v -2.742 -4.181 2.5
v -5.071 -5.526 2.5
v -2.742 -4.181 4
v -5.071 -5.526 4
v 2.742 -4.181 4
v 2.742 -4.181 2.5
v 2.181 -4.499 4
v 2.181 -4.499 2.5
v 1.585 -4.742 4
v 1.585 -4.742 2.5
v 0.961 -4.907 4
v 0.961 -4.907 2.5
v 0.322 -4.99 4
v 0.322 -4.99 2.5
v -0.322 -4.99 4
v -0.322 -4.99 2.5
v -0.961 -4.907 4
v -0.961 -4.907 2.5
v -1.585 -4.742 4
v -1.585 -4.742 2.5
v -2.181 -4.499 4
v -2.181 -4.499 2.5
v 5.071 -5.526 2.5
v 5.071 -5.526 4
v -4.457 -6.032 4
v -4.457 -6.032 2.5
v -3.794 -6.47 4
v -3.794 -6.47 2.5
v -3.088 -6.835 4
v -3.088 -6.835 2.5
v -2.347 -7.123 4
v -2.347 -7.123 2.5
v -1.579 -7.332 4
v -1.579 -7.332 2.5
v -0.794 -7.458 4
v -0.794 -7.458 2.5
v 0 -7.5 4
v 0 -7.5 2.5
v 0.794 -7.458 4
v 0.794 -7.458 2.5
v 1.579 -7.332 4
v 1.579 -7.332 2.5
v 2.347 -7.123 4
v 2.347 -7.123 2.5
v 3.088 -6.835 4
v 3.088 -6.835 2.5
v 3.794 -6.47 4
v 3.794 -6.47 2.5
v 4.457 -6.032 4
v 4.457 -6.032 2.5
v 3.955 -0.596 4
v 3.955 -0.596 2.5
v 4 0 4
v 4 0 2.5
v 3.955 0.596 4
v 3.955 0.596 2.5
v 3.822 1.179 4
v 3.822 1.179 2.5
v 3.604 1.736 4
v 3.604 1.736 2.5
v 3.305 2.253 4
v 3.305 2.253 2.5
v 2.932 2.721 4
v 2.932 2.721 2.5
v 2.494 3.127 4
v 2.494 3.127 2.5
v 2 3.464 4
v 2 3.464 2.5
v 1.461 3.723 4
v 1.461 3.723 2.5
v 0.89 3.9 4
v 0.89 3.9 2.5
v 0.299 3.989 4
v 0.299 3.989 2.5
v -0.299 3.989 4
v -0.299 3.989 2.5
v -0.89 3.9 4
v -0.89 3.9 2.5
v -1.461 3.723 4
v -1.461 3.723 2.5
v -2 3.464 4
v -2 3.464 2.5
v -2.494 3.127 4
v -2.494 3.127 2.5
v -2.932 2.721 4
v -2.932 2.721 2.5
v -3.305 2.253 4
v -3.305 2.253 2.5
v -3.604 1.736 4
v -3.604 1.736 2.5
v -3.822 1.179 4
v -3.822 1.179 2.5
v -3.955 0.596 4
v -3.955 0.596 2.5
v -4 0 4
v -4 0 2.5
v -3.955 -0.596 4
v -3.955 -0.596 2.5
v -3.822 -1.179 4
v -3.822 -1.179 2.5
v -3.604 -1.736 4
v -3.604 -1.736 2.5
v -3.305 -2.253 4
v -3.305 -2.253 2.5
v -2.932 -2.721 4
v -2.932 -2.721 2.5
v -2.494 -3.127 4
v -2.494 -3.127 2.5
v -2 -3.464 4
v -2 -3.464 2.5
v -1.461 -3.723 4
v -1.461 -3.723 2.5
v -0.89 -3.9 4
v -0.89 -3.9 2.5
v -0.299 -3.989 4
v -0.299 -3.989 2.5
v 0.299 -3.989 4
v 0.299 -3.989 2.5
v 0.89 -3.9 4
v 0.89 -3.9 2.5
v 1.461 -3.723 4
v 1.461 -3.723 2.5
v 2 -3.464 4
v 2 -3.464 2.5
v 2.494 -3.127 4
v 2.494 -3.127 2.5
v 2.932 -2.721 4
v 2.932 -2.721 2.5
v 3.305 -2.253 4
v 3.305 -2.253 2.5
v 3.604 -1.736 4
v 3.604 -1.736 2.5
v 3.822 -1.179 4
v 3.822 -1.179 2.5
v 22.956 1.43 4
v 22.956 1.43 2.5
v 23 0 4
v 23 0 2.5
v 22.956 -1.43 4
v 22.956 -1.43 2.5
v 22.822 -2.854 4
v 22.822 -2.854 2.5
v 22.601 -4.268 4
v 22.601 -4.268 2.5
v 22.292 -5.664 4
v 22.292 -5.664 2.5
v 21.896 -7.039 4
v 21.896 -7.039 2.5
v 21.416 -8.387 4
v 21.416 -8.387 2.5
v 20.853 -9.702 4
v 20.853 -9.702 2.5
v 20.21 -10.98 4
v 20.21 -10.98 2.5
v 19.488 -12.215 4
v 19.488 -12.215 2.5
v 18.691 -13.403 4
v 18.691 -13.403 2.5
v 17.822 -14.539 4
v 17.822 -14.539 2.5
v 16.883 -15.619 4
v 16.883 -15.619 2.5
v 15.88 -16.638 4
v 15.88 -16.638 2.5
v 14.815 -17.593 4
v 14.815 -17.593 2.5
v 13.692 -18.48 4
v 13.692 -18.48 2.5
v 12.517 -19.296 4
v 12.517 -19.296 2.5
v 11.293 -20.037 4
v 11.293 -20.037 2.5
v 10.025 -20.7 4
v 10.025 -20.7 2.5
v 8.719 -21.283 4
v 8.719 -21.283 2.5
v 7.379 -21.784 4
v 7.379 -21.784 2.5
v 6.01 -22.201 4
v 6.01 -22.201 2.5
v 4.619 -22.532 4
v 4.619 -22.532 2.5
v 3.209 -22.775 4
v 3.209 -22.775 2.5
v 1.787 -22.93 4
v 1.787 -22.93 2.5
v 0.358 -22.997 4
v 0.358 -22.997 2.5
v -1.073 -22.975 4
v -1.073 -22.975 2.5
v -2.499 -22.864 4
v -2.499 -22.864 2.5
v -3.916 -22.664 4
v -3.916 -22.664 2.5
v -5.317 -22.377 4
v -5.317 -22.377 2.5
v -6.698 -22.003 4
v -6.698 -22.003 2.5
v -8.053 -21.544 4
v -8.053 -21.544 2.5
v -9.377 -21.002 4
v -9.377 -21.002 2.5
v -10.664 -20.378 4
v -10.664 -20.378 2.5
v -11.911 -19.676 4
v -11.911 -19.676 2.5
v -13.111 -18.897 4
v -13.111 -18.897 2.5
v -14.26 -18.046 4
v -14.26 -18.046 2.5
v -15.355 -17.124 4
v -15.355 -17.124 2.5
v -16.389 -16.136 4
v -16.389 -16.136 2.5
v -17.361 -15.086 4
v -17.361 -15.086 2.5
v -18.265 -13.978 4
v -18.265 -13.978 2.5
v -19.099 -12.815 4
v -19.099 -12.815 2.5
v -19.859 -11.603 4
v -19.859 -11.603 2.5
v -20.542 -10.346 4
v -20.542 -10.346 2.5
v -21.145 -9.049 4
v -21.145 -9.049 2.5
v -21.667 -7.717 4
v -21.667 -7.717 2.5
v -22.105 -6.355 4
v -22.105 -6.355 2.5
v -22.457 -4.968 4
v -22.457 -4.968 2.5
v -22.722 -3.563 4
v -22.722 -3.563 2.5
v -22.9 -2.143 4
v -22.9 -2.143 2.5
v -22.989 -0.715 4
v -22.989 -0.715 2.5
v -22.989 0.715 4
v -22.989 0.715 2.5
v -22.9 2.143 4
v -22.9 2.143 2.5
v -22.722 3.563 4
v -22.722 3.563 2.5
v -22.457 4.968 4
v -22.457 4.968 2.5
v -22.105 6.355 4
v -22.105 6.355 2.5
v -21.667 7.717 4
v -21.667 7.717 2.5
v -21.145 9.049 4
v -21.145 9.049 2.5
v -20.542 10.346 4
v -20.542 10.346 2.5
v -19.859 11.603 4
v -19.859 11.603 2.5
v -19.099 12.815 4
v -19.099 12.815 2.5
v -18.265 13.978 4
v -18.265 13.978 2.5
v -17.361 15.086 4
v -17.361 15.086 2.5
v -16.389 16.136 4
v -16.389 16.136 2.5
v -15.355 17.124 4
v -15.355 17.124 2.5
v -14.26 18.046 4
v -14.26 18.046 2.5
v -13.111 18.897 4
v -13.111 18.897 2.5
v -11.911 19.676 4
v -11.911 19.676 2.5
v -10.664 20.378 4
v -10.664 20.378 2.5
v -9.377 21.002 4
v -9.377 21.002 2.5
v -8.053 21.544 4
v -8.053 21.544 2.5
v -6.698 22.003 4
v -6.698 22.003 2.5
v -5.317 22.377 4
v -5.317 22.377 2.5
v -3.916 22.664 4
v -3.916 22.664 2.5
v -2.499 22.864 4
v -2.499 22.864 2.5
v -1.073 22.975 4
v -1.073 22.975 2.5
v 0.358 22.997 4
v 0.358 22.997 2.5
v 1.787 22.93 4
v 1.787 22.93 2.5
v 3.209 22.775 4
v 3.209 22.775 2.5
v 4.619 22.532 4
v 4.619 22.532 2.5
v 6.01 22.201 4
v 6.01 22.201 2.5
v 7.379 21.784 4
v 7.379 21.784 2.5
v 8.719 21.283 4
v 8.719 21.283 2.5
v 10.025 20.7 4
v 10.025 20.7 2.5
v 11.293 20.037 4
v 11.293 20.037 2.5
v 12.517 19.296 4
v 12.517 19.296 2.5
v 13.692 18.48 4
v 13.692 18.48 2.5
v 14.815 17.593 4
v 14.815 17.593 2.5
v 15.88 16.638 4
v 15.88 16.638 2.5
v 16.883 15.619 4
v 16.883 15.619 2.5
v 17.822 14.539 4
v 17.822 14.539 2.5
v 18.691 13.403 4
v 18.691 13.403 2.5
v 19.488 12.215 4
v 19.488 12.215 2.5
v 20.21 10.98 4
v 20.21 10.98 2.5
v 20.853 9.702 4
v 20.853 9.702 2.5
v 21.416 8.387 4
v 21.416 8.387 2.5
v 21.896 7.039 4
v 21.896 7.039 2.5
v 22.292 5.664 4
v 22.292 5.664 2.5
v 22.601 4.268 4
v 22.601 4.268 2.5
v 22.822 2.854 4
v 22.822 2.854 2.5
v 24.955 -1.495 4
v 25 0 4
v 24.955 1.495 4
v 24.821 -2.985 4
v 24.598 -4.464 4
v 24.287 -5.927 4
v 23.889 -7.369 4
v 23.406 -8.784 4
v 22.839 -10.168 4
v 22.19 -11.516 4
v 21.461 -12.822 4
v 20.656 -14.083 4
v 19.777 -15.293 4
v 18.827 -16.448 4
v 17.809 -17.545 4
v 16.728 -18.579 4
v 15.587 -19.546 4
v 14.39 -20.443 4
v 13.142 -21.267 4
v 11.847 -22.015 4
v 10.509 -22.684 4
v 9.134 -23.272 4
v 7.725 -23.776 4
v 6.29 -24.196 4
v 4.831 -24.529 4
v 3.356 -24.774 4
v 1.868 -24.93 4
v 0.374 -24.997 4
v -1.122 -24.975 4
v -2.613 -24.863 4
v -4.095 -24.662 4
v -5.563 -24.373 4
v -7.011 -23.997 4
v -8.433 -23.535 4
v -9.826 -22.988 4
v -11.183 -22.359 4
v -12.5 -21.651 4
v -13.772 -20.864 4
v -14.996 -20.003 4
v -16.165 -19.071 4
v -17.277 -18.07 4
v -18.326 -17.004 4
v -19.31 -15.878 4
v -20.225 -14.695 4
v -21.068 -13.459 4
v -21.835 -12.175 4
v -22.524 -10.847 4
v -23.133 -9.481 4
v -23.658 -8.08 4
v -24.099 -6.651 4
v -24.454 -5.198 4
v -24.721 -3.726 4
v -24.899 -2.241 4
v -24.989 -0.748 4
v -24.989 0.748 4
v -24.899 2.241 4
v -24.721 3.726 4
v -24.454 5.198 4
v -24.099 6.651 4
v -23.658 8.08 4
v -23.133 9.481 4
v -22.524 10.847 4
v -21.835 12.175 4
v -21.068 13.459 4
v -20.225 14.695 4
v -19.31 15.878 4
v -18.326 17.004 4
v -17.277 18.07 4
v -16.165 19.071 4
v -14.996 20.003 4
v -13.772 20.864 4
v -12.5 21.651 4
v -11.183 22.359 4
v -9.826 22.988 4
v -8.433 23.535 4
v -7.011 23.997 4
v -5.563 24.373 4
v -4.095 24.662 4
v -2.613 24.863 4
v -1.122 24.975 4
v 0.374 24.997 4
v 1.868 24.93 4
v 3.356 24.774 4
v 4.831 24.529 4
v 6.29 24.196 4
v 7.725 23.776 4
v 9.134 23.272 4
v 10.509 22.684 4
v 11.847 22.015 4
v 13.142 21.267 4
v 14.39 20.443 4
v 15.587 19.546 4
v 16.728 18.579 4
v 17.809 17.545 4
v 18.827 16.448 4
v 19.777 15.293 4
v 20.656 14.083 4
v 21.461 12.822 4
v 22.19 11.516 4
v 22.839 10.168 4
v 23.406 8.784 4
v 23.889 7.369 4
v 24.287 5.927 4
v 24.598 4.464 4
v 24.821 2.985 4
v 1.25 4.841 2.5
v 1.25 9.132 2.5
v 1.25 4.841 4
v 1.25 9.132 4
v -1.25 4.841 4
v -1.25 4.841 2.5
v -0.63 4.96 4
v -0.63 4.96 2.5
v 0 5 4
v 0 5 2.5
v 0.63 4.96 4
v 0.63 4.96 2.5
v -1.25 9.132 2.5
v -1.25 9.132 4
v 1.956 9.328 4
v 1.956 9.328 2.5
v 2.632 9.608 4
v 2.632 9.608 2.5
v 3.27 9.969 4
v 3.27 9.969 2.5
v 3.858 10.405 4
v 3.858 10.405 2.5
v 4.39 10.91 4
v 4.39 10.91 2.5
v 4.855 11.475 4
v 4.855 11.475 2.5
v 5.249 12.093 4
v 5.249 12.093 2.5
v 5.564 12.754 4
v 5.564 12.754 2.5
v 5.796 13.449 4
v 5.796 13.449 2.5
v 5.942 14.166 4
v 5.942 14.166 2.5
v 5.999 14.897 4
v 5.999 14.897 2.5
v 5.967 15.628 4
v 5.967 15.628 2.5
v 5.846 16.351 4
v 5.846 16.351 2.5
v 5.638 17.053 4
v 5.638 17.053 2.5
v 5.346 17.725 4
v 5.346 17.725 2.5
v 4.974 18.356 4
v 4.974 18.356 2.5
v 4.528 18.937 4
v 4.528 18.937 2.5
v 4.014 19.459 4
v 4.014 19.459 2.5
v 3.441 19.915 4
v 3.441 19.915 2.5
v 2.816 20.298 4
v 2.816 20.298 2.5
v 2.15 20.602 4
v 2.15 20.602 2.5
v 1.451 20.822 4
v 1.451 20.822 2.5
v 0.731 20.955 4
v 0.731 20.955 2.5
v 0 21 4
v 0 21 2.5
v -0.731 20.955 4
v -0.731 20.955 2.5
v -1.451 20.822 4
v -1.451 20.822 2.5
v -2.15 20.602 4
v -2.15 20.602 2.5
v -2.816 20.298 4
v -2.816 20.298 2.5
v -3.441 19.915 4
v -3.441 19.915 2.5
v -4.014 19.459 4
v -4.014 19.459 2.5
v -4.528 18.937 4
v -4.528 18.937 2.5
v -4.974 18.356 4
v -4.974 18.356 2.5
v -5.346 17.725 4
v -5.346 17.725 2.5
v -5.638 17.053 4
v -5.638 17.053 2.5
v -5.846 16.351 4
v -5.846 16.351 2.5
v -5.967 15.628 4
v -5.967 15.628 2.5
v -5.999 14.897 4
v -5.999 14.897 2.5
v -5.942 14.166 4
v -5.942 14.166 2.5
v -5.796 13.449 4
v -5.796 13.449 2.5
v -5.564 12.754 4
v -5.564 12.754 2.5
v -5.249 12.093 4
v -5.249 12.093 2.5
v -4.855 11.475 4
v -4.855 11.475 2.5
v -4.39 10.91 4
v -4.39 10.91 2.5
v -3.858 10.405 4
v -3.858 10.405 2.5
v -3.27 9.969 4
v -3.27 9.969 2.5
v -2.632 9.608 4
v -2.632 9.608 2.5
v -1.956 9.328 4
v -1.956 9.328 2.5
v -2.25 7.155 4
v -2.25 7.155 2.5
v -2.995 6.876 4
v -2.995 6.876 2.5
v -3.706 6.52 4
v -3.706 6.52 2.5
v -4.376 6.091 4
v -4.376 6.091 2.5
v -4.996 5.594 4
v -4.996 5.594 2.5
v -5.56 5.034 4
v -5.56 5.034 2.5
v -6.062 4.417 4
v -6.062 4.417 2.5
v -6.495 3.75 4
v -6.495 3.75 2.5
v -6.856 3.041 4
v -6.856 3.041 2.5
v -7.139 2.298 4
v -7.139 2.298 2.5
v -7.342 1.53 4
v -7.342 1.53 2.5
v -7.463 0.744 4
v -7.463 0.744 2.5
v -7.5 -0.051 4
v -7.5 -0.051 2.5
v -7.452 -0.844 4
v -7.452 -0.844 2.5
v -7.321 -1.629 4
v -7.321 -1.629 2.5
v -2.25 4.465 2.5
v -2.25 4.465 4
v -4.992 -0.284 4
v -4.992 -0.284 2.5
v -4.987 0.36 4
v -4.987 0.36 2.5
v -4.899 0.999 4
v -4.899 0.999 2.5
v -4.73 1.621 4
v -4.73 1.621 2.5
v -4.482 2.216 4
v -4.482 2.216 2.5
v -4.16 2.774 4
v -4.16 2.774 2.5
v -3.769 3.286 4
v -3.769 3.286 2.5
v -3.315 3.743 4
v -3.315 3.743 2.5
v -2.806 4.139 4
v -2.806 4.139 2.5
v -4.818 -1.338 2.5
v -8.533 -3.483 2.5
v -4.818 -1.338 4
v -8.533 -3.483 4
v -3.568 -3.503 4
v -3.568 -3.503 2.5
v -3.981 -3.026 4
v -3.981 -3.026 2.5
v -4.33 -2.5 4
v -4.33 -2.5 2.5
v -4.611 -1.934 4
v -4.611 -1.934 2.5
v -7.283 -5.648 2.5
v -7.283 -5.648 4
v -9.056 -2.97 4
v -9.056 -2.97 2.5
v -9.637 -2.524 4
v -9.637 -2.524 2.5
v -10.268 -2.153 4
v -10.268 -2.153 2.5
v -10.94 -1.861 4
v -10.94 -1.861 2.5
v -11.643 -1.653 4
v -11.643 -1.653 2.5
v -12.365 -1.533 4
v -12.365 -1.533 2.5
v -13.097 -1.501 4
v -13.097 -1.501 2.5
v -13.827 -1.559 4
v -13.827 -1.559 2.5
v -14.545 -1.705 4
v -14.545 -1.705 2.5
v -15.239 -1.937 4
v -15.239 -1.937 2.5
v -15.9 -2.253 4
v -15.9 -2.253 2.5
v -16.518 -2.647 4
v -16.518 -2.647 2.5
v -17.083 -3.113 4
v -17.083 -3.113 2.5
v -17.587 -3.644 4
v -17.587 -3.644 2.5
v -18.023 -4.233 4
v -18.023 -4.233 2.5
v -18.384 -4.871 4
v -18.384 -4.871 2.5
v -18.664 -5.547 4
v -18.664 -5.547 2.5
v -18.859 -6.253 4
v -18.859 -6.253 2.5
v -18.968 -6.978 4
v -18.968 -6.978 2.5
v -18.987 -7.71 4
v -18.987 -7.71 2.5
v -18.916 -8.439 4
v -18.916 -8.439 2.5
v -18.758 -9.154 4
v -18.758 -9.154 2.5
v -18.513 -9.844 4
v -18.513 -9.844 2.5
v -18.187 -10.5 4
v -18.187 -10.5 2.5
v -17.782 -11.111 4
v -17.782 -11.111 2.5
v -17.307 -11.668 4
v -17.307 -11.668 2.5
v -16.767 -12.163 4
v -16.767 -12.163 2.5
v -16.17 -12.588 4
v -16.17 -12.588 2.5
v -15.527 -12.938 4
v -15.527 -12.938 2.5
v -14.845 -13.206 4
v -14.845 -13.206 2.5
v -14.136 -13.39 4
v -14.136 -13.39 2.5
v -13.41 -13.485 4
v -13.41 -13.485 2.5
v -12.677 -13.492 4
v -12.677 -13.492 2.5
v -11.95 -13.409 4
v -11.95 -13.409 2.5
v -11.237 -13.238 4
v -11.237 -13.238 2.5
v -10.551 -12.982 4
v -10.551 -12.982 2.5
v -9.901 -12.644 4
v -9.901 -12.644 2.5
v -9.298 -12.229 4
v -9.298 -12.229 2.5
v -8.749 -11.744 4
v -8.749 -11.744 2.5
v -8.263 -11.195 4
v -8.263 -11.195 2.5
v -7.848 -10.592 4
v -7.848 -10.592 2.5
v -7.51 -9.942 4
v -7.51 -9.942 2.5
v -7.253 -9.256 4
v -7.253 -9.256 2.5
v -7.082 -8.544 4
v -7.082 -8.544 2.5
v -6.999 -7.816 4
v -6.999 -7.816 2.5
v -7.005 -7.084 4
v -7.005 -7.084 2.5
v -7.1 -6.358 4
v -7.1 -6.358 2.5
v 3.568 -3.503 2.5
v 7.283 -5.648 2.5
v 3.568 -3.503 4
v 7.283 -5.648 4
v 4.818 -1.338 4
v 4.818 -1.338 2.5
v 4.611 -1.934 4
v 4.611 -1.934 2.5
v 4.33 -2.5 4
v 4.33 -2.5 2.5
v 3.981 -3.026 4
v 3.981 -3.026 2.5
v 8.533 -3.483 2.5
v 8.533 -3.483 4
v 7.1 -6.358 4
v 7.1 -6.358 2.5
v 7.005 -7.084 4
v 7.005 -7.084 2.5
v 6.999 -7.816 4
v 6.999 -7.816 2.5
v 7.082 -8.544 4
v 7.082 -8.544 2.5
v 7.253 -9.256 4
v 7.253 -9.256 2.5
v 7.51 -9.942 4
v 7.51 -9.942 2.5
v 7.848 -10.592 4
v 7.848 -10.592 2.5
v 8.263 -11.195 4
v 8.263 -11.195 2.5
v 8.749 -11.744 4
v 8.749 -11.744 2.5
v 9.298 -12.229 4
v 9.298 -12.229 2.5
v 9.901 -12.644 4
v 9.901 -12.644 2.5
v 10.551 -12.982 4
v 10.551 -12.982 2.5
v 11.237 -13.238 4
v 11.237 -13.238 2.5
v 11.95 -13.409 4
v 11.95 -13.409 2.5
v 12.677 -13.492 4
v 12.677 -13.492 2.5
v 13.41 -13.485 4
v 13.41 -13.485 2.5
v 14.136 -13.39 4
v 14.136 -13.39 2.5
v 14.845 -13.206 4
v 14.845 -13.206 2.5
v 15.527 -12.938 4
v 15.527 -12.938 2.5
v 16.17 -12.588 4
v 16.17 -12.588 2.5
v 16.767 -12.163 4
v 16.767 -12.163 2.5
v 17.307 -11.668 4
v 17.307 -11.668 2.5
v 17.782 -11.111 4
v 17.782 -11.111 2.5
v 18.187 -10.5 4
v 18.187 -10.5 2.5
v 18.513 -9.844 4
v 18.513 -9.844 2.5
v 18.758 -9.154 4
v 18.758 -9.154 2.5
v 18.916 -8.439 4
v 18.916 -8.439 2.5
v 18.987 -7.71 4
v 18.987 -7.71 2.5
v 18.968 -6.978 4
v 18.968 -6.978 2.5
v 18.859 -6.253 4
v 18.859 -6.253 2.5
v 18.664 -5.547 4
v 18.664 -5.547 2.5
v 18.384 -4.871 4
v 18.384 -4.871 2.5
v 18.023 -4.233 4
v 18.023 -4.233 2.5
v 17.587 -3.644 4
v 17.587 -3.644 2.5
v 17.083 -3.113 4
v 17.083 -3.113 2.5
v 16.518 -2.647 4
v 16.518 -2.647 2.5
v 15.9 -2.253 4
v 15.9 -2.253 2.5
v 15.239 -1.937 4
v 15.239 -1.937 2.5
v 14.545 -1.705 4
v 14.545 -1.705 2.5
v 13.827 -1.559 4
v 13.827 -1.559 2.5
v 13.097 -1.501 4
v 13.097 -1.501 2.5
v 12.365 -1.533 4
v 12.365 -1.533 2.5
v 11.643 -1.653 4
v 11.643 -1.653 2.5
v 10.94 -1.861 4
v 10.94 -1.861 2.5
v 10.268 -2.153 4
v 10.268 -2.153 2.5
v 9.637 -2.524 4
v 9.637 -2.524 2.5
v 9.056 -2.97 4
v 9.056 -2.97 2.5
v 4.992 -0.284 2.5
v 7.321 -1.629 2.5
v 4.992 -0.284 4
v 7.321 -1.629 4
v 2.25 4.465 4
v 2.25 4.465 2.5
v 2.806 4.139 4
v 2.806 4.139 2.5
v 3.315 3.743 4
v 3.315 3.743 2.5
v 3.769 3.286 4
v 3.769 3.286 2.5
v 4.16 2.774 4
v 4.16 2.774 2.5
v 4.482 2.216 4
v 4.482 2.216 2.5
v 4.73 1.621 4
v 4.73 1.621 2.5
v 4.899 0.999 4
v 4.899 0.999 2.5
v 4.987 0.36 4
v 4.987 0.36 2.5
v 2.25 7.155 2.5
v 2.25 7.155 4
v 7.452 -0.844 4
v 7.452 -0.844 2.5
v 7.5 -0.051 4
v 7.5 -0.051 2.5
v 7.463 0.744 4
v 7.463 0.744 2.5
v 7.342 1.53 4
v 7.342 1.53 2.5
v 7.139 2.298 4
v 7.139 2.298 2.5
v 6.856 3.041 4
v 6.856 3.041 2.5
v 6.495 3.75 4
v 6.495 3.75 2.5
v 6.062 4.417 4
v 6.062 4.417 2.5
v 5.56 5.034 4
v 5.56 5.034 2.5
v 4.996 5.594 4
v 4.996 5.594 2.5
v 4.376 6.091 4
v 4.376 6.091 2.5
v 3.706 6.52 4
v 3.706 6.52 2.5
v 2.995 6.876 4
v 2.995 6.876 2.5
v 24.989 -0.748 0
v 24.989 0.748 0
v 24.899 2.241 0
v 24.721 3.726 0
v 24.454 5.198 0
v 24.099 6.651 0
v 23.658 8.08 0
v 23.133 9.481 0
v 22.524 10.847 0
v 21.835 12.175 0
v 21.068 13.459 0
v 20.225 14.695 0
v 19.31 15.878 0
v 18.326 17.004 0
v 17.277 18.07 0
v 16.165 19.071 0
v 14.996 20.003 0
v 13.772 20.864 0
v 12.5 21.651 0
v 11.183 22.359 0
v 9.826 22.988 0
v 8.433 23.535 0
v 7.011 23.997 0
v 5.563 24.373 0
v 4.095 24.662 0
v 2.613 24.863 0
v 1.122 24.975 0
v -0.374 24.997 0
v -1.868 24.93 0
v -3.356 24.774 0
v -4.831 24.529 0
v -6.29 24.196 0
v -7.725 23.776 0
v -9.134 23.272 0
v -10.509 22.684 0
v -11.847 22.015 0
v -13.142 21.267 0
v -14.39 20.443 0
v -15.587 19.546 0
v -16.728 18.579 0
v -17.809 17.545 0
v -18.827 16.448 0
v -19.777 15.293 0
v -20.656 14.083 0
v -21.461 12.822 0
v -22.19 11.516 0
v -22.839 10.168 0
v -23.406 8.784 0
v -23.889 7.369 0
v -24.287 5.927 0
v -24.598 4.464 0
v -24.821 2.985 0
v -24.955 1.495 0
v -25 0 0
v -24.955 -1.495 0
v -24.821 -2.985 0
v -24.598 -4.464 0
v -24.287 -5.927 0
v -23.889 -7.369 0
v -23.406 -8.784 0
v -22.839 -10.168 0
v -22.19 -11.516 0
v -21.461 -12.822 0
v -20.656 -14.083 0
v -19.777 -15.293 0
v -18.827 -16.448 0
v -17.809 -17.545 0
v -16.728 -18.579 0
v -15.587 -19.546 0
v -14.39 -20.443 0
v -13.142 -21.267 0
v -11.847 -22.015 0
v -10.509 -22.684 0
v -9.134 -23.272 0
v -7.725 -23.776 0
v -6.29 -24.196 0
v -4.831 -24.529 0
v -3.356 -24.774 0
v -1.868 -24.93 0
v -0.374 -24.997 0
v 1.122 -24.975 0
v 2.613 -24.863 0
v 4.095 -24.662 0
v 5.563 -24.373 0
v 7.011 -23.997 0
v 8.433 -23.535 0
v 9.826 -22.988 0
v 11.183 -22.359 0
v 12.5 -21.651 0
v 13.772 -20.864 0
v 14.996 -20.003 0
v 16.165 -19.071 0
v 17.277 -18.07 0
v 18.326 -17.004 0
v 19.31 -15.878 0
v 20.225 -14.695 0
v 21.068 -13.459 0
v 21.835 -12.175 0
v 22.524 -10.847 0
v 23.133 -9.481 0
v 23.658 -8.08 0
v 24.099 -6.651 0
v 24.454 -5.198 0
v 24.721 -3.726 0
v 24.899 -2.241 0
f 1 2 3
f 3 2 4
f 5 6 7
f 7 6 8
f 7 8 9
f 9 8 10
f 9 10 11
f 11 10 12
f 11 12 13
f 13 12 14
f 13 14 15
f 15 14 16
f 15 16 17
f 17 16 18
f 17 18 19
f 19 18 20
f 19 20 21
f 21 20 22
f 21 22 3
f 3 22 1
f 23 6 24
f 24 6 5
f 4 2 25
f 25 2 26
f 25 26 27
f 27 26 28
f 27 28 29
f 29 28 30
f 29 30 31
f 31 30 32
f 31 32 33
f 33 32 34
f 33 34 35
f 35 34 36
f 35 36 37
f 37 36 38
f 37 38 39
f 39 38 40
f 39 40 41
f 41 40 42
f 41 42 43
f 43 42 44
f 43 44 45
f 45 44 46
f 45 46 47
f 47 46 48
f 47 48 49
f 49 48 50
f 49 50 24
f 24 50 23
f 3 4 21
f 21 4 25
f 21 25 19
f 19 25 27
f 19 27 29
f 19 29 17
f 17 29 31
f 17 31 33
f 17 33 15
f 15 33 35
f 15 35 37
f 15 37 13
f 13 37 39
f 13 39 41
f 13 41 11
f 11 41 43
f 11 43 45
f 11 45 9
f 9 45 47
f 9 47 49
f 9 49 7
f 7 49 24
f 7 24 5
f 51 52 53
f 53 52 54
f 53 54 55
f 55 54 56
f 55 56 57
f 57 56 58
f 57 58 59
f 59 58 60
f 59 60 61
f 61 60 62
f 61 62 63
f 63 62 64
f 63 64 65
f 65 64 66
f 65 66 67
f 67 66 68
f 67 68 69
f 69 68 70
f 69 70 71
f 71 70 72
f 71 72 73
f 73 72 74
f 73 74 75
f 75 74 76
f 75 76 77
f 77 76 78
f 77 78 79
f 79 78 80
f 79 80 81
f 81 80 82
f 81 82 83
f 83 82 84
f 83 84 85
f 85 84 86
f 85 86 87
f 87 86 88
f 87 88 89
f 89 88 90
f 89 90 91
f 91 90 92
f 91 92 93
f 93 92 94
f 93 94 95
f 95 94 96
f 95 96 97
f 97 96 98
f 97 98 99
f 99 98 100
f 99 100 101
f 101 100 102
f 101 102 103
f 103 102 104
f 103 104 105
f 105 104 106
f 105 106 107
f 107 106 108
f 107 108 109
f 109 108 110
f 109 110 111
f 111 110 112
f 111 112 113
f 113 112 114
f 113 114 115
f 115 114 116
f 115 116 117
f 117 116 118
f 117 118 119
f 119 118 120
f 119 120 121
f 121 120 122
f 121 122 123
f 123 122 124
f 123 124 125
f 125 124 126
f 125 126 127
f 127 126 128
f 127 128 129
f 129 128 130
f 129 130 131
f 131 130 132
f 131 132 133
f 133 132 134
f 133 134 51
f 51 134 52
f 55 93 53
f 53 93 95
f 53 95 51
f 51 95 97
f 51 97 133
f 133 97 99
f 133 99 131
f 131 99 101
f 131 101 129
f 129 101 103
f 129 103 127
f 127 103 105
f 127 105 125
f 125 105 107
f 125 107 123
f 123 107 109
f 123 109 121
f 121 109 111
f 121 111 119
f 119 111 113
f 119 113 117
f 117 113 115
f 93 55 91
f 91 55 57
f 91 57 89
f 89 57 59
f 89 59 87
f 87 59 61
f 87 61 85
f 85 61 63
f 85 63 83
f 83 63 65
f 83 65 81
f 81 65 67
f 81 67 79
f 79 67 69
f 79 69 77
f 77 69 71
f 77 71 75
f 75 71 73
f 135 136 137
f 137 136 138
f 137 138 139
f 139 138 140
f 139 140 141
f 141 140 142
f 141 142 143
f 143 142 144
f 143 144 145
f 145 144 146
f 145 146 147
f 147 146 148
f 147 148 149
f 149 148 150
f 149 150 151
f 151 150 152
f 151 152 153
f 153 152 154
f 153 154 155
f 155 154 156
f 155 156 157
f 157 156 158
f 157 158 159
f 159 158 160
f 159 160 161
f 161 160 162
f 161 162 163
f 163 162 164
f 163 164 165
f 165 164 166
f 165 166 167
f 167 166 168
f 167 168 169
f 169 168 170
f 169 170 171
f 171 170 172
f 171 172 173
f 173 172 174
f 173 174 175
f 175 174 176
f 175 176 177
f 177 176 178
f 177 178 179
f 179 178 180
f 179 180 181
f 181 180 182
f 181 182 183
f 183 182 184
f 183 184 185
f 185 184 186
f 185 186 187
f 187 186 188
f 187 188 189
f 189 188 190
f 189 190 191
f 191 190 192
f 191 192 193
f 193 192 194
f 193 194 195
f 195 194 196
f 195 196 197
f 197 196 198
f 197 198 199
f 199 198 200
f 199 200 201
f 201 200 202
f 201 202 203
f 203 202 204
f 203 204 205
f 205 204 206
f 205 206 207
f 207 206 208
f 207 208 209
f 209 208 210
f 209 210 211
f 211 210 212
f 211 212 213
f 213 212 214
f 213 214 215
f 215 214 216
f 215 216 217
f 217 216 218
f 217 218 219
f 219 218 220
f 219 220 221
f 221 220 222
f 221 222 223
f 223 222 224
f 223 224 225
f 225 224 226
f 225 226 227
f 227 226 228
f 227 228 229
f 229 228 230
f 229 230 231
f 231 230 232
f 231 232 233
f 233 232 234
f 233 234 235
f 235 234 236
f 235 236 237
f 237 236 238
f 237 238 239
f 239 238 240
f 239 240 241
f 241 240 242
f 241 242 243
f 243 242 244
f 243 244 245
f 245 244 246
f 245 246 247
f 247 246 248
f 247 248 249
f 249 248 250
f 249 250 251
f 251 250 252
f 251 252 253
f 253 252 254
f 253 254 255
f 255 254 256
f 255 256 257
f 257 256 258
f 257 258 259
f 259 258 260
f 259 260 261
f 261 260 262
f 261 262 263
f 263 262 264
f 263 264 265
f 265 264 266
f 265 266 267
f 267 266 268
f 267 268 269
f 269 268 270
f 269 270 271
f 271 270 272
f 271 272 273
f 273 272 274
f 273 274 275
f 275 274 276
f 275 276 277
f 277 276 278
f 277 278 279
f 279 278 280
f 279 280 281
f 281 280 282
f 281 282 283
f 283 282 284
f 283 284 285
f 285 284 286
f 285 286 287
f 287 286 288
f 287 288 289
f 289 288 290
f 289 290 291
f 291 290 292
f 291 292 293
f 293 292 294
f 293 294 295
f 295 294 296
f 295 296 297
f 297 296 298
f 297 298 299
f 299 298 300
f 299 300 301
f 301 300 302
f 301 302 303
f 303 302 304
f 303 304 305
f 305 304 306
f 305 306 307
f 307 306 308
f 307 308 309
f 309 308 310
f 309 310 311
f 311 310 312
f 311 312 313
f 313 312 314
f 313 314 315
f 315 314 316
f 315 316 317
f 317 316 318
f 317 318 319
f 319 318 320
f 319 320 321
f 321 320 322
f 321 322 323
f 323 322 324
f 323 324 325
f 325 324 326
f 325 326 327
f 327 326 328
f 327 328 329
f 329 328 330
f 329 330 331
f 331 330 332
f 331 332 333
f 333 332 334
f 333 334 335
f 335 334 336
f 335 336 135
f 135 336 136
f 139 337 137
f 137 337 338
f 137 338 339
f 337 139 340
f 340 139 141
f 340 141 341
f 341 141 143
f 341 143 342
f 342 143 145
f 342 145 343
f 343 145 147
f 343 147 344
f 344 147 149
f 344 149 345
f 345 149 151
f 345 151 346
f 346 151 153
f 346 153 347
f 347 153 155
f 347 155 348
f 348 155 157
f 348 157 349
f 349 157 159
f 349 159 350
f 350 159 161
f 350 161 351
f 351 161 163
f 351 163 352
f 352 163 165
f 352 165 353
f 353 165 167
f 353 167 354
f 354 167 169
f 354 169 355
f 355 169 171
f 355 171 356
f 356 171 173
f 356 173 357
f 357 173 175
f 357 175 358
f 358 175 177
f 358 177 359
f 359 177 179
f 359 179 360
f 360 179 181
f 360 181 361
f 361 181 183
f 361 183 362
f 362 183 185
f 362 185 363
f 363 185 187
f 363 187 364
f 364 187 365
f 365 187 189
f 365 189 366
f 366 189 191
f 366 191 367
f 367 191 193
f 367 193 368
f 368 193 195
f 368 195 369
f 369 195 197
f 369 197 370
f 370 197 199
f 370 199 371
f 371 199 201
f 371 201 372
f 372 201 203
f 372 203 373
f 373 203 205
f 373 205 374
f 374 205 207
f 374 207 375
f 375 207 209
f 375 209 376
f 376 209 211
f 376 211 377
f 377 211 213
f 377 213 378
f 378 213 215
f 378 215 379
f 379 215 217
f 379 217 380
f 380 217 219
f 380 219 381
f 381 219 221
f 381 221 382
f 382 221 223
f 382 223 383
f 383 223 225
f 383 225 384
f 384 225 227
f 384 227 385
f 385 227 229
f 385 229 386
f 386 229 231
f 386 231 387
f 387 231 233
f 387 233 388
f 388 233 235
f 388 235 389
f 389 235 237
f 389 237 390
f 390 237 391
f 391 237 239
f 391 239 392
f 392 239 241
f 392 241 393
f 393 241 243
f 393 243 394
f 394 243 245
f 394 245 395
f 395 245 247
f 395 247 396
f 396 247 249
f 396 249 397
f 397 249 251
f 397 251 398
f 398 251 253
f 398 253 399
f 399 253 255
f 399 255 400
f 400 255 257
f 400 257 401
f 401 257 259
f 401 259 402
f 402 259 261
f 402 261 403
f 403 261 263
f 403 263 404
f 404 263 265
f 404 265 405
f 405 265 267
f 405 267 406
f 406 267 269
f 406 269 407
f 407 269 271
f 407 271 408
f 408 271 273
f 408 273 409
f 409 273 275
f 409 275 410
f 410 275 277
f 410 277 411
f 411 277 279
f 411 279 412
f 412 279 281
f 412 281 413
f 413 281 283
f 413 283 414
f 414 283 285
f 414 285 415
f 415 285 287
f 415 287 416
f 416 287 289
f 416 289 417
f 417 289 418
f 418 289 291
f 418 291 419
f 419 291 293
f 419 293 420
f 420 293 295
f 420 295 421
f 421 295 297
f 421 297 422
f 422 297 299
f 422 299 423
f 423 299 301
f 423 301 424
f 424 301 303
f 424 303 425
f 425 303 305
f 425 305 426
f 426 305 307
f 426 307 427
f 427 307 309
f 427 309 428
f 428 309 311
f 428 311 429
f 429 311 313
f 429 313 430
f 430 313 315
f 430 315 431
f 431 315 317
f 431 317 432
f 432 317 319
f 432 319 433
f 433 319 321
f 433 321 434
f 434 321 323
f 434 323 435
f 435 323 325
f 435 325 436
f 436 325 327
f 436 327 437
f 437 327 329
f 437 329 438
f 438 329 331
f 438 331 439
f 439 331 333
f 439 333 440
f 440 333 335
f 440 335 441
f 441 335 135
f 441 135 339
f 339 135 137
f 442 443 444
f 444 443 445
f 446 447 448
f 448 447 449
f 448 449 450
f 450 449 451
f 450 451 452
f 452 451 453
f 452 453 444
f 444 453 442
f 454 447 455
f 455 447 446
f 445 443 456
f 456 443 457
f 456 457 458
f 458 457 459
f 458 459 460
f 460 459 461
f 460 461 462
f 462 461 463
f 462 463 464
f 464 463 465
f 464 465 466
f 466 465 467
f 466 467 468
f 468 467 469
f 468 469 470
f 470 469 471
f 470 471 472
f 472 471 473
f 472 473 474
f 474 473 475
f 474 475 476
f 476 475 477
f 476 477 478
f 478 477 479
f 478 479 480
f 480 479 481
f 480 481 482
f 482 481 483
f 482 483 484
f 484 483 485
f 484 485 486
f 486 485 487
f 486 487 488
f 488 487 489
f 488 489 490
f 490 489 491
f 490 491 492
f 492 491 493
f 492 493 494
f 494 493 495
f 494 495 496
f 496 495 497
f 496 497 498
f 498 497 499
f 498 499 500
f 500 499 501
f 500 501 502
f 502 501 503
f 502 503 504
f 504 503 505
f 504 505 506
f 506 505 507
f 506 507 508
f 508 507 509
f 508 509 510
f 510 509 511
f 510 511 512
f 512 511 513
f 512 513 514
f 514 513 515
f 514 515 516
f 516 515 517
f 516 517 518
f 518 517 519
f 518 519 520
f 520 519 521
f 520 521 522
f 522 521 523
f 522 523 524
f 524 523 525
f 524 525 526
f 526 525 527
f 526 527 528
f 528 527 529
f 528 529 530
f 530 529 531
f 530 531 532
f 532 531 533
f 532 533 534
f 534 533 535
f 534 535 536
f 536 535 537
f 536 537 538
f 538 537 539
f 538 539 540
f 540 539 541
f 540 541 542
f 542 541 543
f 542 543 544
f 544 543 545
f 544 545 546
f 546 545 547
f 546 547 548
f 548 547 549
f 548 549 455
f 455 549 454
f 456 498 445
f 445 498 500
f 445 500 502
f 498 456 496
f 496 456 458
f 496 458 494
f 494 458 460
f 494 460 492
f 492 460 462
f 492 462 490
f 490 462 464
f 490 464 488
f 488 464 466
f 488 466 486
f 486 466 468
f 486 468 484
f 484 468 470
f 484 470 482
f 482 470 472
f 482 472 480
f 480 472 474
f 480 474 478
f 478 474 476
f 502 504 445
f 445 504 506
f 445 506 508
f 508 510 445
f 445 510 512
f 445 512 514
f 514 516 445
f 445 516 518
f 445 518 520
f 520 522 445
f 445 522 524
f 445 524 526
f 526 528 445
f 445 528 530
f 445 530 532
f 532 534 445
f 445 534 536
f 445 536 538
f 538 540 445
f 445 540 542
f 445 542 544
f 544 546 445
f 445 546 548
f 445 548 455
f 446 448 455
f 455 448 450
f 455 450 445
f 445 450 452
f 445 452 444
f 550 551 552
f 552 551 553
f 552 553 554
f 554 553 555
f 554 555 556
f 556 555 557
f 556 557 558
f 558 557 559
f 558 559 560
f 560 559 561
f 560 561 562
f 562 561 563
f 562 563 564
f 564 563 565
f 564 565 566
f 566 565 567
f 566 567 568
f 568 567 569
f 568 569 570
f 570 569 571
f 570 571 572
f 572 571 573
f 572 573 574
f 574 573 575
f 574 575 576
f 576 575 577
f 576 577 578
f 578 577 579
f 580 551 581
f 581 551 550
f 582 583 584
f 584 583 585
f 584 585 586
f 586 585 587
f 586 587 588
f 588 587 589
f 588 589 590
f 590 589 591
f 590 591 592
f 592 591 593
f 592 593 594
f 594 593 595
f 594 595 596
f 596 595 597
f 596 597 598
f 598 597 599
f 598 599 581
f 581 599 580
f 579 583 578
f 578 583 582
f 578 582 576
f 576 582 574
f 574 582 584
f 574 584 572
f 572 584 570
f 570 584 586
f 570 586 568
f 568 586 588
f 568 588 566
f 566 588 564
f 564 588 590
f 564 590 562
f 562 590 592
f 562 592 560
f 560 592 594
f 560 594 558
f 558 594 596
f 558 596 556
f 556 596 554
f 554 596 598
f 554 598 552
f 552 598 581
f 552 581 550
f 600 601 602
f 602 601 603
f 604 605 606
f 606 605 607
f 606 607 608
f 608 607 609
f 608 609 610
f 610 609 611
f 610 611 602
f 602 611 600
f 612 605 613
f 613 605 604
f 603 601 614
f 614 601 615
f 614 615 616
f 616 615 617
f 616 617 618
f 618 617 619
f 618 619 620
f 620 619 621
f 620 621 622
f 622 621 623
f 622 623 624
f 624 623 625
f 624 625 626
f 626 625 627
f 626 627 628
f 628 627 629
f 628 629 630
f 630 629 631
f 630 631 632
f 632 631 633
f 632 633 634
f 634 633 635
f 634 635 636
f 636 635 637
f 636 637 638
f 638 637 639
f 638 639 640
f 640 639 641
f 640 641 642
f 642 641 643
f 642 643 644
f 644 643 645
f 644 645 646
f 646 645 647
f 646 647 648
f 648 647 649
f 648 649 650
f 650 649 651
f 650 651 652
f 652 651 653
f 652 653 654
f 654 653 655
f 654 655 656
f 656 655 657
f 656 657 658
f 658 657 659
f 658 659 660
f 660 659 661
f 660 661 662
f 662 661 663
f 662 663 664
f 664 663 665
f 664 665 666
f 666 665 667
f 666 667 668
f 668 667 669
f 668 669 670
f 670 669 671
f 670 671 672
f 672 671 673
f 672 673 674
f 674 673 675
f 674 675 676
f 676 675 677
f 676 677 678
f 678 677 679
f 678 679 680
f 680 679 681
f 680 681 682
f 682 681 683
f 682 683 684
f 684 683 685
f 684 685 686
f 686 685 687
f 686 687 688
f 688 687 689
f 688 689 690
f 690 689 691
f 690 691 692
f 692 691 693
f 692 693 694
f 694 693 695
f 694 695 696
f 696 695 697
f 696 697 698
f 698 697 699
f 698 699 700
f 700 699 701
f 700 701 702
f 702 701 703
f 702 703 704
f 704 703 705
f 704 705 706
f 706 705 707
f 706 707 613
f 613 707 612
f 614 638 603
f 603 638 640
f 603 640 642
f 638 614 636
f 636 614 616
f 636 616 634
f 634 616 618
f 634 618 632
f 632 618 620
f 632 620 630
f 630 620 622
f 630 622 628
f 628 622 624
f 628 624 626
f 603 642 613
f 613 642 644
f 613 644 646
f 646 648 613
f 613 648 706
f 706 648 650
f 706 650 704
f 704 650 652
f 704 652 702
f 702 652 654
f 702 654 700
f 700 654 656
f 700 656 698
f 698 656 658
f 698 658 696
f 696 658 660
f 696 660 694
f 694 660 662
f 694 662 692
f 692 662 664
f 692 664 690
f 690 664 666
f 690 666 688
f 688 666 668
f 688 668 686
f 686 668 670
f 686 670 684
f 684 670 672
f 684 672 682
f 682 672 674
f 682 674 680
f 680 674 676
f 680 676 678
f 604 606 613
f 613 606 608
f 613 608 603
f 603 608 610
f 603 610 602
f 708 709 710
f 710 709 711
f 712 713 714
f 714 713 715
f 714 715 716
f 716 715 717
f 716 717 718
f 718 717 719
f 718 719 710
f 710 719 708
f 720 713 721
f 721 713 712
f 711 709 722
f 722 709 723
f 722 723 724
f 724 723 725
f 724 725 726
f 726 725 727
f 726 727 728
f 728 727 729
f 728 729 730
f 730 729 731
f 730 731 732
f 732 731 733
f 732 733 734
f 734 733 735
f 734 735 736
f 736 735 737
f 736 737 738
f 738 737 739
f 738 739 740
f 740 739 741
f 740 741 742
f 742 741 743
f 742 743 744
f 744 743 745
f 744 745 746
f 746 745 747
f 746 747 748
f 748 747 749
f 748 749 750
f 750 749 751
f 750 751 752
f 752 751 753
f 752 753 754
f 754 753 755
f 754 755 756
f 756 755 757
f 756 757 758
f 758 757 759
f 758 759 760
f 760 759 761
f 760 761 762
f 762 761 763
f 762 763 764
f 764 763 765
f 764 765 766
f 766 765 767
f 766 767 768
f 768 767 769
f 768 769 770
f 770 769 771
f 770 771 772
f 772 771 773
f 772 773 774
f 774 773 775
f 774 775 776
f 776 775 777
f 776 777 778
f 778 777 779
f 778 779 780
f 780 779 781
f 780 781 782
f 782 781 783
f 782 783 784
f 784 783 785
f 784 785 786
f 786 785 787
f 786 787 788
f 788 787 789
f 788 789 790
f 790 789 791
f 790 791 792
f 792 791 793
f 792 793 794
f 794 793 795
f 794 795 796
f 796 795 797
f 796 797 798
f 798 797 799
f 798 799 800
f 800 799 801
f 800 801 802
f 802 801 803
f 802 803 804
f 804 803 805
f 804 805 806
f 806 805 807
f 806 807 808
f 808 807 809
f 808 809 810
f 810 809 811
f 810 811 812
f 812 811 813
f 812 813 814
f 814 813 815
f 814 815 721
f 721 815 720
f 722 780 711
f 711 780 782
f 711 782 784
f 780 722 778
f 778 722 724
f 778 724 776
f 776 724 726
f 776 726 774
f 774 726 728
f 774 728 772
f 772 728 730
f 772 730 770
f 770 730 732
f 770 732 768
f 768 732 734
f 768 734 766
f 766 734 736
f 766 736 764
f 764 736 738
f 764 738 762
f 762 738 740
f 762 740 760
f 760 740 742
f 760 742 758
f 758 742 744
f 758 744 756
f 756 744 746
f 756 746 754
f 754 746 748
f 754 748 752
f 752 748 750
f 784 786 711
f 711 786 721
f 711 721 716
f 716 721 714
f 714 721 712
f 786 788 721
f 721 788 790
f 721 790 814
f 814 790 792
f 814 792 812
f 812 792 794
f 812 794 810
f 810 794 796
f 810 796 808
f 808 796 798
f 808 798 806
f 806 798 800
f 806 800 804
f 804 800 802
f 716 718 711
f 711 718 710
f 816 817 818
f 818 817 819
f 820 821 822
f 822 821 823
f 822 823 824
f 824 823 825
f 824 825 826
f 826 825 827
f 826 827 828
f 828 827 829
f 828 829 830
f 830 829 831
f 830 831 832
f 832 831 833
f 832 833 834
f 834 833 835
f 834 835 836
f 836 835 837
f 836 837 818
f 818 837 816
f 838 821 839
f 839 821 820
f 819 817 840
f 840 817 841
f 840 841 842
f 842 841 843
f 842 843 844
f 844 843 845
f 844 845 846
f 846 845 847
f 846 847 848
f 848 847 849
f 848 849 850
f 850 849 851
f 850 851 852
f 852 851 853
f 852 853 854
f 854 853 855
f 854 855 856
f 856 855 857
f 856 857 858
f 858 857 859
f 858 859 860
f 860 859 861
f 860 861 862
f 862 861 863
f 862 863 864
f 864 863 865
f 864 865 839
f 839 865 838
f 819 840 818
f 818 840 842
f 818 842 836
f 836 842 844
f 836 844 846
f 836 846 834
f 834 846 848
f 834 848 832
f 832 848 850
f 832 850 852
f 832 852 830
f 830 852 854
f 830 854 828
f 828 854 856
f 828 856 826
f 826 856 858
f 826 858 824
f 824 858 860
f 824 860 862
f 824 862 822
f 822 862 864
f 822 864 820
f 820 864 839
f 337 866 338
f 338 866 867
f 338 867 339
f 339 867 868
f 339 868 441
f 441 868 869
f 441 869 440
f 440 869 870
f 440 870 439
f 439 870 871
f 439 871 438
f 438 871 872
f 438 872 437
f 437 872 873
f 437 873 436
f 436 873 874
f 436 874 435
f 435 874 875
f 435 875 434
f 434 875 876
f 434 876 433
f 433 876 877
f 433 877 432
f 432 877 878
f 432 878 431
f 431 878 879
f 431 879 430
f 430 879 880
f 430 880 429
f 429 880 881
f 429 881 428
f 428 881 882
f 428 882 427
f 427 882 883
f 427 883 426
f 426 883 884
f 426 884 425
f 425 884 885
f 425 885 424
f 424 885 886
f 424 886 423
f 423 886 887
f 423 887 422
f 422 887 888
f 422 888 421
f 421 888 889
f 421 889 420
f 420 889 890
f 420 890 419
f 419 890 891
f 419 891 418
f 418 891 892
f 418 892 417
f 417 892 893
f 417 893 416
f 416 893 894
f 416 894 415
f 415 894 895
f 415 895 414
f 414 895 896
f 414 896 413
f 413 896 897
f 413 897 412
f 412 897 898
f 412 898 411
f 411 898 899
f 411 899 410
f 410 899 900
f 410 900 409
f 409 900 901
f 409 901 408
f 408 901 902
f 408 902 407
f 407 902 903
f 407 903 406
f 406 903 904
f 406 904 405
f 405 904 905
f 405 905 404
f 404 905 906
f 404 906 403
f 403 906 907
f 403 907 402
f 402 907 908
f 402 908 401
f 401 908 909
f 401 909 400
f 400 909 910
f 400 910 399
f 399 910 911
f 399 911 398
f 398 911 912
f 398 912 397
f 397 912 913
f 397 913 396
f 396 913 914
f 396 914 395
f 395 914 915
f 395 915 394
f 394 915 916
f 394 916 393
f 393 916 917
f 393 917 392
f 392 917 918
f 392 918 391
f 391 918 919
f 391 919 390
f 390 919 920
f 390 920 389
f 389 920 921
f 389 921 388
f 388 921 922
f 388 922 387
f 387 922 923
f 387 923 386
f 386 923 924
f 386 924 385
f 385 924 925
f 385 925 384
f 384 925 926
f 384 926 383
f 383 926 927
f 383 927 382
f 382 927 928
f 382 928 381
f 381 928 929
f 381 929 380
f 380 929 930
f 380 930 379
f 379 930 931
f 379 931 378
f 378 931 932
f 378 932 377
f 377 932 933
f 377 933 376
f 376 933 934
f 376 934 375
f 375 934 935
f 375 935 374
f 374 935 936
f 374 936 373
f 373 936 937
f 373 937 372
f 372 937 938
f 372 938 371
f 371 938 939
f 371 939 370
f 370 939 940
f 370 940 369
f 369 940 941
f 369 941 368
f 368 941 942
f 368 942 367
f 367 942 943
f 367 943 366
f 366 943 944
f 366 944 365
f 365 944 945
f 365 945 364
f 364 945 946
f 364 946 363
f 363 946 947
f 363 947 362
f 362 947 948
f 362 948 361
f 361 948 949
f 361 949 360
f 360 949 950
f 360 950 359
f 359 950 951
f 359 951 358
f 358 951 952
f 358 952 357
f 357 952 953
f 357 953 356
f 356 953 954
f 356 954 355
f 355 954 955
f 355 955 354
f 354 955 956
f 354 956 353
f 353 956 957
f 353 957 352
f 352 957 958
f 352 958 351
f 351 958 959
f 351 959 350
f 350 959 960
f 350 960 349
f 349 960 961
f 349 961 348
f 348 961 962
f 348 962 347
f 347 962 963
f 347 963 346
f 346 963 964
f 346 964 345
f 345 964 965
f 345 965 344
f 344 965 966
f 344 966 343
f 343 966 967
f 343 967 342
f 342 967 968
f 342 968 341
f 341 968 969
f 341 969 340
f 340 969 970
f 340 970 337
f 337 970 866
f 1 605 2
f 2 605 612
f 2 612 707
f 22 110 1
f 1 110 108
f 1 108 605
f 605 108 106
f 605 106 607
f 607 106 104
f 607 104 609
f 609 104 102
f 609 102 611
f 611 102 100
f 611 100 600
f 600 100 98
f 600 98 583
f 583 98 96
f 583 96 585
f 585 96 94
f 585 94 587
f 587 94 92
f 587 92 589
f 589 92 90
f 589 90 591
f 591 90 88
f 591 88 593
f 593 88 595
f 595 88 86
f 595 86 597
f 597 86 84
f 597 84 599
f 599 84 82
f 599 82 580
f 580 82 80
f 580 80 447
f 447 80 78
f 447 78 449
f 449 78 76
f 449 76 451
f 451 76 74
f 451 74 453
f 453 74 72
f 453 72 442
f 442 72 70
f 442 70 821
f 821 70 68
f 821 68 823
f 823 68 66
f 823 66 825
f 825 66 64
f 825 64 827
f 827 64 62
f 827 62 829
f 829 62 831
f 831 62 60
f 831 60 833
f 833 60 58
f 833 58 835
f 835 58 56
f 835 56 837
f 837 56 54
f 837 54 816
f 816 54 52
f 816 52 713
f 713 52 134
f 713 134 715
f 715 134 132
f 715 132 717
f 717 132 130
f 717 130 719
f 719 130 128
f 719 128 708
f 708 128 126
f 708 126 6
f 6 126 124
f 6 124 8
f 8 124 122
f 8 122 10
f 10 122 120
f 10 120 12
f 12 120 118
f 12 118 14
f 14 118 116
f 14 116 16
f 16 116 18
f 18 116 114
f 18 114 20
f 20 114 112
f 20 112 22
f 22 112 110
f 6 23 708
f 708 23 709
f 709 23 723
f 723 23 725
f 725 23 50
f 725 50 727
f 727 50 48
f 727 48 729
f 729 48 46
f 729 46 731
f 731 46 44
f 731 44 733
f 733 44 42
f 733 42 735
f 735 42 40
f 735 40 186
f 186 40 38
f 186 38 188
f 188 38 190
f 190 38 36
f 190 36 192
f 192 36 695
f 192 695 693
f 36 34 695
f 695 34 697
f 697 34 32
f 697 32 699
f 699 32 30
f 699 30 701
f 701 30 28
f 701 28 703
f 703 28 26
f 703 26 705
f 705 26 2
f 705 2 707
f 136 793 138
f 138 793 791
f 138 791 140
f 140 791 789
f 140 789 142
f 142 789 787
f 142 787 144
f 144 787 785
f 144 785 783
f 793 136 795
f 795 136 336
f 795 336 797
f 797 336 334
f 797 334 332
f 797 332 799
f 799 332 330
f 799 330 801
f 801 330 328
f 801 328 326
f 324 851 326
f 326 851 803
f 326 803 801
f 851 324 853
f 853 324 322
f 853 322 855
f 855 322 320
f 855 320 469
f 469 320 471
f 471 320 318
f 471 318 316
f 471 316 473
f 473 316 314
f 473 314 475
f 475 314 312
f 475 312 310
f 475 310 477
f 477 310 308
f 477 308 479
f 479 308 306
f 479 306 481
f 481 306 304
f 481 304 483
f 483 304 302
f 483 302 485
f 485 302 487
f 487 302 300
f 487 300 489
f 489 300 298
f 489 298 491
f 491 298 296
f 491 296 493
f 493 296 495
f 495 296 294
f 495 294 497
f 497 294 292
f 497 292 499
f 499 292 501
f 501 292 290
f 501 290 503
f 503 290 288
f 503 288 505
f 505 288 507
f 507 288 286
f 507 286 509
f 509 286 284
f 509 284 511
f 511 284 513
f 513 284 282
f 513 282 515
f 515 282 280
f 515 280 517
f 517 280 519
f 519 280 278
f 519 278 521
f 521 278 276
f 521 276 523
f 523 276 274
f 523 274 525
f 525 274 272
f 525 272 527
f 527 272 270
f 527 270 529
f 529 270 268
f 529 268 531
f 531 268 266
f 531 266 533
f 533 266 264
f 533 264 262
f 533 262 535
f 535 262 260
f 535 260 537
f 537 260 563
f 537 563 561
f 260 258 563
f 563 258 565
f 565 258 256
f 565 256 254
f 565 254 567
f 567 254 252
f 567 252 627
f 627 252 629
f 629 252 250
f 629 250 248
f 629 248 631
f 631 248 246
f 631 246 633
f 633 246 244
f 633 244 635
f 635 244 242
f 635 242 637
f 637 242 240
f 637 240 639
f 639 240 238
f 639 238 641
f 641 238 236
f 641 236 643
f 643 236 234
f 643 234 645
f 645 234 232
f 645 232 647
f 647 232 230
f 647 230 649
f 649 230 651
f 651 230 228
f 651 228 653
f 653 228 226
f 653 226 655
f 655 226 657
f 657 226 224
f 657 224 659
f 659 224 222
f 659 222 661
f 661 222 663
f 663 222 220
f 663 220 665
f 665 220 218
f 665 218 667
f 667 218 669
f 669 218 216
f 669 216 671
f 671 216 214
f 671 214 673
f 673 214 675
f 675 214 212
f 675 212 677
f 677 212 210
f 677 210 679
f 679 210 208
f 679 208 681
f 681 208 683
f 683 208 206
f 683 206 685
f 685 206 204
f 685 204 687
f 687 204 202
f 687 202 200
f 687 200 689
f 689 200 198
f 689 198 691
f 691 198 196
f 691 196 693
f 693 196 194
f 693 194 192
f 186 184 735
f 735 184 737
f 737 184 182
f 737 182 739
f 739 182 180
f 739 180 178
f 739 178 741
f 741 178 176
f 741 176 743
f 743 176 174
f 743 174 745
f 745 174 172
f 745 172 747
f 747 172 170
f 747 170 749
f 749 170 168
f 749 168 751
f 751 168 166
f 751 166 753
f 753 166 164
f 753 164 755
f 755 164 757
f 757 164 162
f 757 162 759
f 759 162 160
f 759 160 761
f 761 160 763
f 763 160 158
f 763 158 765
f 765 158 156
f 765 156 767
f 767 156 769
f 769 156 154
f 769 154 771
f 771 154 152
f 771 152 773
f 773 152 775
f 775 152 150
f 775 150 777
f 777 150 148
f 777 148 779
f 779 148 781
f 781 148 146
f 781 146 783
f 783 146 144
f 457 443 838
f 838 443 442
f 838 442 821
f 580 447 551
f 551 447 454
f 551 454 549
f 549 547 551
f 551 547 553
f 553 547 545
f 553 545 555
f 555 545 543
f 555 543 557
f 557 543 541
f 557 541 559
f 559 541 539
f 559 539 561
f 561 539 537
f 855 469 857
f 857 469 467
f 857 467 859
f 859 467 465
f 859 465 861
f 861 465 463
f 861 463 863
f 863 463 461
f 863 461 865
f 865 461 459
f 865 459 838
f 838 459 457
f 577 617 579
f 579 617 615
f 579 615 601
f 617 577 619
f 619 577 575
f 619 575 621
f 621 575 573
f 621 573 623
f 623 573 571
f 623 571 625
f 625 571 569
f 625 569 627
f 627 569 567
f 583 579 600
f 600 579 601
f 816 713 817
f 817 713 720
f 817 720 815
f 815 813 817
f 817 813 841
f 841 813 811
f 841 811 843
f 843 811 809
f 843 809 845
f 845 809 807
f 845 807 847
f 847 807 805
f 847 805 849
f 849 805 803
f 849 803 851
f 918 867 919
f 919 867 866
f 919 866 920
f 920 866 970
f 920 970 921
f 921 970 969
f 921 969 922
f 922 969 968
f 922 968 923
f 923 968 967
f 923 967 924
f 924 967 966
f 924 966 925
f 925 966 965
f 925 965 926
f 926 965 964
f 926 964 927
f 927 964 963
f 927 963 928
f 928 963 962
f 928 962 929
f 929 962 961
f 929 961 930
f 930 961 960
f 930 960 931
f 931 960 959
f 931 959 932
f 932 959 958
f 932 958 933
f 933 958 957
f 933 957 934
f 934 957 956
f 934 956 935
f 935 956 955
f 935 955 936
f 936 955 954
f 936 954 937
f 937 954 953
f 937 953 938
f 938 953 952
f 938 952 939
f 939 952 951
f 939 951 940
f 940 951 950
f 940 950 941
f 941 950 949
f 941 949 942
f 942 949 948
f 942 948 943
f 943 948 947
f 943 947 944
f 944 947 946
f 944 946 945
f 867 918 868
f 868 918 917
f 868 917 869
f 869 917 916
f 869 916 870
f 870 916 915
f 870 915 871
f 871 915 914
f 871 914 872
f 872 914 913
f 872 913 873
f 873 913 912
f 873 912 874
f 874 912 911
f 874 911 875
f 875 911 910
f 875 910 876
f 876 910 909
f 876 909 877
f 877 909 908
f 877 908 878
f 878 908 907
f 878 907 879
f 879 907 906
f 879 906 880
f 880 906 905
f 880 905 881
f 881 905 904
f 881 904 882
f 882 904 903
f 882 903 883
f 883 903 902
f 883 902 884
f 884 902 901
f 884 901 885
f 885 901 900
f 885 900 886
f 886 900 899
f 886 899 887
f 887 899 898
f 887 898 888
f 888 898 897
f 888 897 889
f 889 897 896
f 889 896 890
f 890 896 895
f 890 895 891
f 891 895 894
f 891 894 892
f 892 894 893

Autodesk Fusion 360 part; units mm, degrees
sketch "Sketch1" plane through (0, 0, 0) normal (0, 0, 1) x (1, 0, 0)
  circle A0 centre (0, 0) radius 25
  dimension "d1" = 50
extrude "Extrude1" add sketch "Sketch1" along normal blind 2.5
sketch "Sketch2" plane through (0, 0, 2.5) normal (0, 0, 1) x (-1, 0, 0)
  circle A0 centre (0, 0) radius 25
  circle A1 centre (0, 0) radius 23
  circle A2 centre (0, 0) radius 21 construction
  circle A3 centre (0, 0) radius 4
  line L0 (0, 0) -> (0, -21) construction
  line L1 (0, 0) -> (-18.1865, 10.5) construction
  line L2 (18.1865, 10.5) -> (0, 0) construction
  line L3 (18.1865, 10.5) -> (0, -21) construction
  line L4 (-18.1865, 10.5) -> (0, -21) construction
  line L5 (-18.1865, 10.5) -> (18.1865, 10.5) construction
  circle A4 centre (0, 0) radius 5
  circle A5 centre (0, 0) radius 15 construction
  circle A6 centre (0, -15) radius 6
  circle A7 centre (-12.9904, 7.5) radius 6
  circle A8 centre (12.9904, 7.5) radius 6
  line L6 (8.5332, 3.4833) -> (3.9156, 0.8173)
  line L7 (7.2832, 5.6484) -> (2.6656, 2.9824)
  line L8 (8.5332, 3.4833) -> (7.2832, 5.6484) construction
  line L9 (3.9156, 0.8173) -> (2.6656, 2.9824) construction
  line L10 (-7.2832, 5.6484) -> (-2.6656, 2.9824)
  line L11 (-8.5332, 3.4833) -> (-3.9156, 0.8173)
  line L12 (-2.6656, 2.9824) -> (-3.9156, 0.8173) construction
  line L13 (-7.2832, 5.6484) -> (-8.5332, 3.4833) construction
  line L14 (-1.25, -9.1317) -> (-1.25, -3.7997)
  line L15 (1.25, -9.1317) -> (1.25, -3.7997)
  line L16 (-1.25, -3.7997) -> (1.25, -3.7997) construction
  line L17 (-1.25, -9.1317) -> (1.25, -9.1317) construction
  circle A9 centre (0, 0) radius 7.5
  line L18 (5.071, 5.5258) -> (2.7419, 4.1811)
  line L19 (7.321, 1.6287) -> (4.9919, 0.284)
  line L20 (-7.321, 1.6287) -> (-4.9919, 0.284)
  line L21 (-5.071, 5.5258) -> (-2.7419, 4.1811)
  line L22 (2.25, -7.1545) -> (2.25, -4.4651)
  line L23 (-2.25, -7.1545) -> (-2.25, -4.4651)
  dimension "d4" = -2
  dimension "d5" = -4
  dimension "d6" = 8
  dimension "d7" = 1
  dimension "d8" = -10
  dimension "d13" = 360
  dimension "d14" = 2.5
  dimension "d15" = 3.5
  dimension "d17" = 360
  dimension "d20" = 1
extrude "Extrude2" add sketch "Sketch2" along normal blind 1.5 contours A0 | A3 | A4 L6 L7 A9 | A4 L14 L15 A9 | A4 A9 L19 L22 | A8 L6 L7 A9 | A6 L14 L15 A9 | A4 L10 L11 A9 | A4 A9 L18 L21 | A8 | A4 A9 L20 L23 | A6 | A7 L10 L11 A9 | A7
